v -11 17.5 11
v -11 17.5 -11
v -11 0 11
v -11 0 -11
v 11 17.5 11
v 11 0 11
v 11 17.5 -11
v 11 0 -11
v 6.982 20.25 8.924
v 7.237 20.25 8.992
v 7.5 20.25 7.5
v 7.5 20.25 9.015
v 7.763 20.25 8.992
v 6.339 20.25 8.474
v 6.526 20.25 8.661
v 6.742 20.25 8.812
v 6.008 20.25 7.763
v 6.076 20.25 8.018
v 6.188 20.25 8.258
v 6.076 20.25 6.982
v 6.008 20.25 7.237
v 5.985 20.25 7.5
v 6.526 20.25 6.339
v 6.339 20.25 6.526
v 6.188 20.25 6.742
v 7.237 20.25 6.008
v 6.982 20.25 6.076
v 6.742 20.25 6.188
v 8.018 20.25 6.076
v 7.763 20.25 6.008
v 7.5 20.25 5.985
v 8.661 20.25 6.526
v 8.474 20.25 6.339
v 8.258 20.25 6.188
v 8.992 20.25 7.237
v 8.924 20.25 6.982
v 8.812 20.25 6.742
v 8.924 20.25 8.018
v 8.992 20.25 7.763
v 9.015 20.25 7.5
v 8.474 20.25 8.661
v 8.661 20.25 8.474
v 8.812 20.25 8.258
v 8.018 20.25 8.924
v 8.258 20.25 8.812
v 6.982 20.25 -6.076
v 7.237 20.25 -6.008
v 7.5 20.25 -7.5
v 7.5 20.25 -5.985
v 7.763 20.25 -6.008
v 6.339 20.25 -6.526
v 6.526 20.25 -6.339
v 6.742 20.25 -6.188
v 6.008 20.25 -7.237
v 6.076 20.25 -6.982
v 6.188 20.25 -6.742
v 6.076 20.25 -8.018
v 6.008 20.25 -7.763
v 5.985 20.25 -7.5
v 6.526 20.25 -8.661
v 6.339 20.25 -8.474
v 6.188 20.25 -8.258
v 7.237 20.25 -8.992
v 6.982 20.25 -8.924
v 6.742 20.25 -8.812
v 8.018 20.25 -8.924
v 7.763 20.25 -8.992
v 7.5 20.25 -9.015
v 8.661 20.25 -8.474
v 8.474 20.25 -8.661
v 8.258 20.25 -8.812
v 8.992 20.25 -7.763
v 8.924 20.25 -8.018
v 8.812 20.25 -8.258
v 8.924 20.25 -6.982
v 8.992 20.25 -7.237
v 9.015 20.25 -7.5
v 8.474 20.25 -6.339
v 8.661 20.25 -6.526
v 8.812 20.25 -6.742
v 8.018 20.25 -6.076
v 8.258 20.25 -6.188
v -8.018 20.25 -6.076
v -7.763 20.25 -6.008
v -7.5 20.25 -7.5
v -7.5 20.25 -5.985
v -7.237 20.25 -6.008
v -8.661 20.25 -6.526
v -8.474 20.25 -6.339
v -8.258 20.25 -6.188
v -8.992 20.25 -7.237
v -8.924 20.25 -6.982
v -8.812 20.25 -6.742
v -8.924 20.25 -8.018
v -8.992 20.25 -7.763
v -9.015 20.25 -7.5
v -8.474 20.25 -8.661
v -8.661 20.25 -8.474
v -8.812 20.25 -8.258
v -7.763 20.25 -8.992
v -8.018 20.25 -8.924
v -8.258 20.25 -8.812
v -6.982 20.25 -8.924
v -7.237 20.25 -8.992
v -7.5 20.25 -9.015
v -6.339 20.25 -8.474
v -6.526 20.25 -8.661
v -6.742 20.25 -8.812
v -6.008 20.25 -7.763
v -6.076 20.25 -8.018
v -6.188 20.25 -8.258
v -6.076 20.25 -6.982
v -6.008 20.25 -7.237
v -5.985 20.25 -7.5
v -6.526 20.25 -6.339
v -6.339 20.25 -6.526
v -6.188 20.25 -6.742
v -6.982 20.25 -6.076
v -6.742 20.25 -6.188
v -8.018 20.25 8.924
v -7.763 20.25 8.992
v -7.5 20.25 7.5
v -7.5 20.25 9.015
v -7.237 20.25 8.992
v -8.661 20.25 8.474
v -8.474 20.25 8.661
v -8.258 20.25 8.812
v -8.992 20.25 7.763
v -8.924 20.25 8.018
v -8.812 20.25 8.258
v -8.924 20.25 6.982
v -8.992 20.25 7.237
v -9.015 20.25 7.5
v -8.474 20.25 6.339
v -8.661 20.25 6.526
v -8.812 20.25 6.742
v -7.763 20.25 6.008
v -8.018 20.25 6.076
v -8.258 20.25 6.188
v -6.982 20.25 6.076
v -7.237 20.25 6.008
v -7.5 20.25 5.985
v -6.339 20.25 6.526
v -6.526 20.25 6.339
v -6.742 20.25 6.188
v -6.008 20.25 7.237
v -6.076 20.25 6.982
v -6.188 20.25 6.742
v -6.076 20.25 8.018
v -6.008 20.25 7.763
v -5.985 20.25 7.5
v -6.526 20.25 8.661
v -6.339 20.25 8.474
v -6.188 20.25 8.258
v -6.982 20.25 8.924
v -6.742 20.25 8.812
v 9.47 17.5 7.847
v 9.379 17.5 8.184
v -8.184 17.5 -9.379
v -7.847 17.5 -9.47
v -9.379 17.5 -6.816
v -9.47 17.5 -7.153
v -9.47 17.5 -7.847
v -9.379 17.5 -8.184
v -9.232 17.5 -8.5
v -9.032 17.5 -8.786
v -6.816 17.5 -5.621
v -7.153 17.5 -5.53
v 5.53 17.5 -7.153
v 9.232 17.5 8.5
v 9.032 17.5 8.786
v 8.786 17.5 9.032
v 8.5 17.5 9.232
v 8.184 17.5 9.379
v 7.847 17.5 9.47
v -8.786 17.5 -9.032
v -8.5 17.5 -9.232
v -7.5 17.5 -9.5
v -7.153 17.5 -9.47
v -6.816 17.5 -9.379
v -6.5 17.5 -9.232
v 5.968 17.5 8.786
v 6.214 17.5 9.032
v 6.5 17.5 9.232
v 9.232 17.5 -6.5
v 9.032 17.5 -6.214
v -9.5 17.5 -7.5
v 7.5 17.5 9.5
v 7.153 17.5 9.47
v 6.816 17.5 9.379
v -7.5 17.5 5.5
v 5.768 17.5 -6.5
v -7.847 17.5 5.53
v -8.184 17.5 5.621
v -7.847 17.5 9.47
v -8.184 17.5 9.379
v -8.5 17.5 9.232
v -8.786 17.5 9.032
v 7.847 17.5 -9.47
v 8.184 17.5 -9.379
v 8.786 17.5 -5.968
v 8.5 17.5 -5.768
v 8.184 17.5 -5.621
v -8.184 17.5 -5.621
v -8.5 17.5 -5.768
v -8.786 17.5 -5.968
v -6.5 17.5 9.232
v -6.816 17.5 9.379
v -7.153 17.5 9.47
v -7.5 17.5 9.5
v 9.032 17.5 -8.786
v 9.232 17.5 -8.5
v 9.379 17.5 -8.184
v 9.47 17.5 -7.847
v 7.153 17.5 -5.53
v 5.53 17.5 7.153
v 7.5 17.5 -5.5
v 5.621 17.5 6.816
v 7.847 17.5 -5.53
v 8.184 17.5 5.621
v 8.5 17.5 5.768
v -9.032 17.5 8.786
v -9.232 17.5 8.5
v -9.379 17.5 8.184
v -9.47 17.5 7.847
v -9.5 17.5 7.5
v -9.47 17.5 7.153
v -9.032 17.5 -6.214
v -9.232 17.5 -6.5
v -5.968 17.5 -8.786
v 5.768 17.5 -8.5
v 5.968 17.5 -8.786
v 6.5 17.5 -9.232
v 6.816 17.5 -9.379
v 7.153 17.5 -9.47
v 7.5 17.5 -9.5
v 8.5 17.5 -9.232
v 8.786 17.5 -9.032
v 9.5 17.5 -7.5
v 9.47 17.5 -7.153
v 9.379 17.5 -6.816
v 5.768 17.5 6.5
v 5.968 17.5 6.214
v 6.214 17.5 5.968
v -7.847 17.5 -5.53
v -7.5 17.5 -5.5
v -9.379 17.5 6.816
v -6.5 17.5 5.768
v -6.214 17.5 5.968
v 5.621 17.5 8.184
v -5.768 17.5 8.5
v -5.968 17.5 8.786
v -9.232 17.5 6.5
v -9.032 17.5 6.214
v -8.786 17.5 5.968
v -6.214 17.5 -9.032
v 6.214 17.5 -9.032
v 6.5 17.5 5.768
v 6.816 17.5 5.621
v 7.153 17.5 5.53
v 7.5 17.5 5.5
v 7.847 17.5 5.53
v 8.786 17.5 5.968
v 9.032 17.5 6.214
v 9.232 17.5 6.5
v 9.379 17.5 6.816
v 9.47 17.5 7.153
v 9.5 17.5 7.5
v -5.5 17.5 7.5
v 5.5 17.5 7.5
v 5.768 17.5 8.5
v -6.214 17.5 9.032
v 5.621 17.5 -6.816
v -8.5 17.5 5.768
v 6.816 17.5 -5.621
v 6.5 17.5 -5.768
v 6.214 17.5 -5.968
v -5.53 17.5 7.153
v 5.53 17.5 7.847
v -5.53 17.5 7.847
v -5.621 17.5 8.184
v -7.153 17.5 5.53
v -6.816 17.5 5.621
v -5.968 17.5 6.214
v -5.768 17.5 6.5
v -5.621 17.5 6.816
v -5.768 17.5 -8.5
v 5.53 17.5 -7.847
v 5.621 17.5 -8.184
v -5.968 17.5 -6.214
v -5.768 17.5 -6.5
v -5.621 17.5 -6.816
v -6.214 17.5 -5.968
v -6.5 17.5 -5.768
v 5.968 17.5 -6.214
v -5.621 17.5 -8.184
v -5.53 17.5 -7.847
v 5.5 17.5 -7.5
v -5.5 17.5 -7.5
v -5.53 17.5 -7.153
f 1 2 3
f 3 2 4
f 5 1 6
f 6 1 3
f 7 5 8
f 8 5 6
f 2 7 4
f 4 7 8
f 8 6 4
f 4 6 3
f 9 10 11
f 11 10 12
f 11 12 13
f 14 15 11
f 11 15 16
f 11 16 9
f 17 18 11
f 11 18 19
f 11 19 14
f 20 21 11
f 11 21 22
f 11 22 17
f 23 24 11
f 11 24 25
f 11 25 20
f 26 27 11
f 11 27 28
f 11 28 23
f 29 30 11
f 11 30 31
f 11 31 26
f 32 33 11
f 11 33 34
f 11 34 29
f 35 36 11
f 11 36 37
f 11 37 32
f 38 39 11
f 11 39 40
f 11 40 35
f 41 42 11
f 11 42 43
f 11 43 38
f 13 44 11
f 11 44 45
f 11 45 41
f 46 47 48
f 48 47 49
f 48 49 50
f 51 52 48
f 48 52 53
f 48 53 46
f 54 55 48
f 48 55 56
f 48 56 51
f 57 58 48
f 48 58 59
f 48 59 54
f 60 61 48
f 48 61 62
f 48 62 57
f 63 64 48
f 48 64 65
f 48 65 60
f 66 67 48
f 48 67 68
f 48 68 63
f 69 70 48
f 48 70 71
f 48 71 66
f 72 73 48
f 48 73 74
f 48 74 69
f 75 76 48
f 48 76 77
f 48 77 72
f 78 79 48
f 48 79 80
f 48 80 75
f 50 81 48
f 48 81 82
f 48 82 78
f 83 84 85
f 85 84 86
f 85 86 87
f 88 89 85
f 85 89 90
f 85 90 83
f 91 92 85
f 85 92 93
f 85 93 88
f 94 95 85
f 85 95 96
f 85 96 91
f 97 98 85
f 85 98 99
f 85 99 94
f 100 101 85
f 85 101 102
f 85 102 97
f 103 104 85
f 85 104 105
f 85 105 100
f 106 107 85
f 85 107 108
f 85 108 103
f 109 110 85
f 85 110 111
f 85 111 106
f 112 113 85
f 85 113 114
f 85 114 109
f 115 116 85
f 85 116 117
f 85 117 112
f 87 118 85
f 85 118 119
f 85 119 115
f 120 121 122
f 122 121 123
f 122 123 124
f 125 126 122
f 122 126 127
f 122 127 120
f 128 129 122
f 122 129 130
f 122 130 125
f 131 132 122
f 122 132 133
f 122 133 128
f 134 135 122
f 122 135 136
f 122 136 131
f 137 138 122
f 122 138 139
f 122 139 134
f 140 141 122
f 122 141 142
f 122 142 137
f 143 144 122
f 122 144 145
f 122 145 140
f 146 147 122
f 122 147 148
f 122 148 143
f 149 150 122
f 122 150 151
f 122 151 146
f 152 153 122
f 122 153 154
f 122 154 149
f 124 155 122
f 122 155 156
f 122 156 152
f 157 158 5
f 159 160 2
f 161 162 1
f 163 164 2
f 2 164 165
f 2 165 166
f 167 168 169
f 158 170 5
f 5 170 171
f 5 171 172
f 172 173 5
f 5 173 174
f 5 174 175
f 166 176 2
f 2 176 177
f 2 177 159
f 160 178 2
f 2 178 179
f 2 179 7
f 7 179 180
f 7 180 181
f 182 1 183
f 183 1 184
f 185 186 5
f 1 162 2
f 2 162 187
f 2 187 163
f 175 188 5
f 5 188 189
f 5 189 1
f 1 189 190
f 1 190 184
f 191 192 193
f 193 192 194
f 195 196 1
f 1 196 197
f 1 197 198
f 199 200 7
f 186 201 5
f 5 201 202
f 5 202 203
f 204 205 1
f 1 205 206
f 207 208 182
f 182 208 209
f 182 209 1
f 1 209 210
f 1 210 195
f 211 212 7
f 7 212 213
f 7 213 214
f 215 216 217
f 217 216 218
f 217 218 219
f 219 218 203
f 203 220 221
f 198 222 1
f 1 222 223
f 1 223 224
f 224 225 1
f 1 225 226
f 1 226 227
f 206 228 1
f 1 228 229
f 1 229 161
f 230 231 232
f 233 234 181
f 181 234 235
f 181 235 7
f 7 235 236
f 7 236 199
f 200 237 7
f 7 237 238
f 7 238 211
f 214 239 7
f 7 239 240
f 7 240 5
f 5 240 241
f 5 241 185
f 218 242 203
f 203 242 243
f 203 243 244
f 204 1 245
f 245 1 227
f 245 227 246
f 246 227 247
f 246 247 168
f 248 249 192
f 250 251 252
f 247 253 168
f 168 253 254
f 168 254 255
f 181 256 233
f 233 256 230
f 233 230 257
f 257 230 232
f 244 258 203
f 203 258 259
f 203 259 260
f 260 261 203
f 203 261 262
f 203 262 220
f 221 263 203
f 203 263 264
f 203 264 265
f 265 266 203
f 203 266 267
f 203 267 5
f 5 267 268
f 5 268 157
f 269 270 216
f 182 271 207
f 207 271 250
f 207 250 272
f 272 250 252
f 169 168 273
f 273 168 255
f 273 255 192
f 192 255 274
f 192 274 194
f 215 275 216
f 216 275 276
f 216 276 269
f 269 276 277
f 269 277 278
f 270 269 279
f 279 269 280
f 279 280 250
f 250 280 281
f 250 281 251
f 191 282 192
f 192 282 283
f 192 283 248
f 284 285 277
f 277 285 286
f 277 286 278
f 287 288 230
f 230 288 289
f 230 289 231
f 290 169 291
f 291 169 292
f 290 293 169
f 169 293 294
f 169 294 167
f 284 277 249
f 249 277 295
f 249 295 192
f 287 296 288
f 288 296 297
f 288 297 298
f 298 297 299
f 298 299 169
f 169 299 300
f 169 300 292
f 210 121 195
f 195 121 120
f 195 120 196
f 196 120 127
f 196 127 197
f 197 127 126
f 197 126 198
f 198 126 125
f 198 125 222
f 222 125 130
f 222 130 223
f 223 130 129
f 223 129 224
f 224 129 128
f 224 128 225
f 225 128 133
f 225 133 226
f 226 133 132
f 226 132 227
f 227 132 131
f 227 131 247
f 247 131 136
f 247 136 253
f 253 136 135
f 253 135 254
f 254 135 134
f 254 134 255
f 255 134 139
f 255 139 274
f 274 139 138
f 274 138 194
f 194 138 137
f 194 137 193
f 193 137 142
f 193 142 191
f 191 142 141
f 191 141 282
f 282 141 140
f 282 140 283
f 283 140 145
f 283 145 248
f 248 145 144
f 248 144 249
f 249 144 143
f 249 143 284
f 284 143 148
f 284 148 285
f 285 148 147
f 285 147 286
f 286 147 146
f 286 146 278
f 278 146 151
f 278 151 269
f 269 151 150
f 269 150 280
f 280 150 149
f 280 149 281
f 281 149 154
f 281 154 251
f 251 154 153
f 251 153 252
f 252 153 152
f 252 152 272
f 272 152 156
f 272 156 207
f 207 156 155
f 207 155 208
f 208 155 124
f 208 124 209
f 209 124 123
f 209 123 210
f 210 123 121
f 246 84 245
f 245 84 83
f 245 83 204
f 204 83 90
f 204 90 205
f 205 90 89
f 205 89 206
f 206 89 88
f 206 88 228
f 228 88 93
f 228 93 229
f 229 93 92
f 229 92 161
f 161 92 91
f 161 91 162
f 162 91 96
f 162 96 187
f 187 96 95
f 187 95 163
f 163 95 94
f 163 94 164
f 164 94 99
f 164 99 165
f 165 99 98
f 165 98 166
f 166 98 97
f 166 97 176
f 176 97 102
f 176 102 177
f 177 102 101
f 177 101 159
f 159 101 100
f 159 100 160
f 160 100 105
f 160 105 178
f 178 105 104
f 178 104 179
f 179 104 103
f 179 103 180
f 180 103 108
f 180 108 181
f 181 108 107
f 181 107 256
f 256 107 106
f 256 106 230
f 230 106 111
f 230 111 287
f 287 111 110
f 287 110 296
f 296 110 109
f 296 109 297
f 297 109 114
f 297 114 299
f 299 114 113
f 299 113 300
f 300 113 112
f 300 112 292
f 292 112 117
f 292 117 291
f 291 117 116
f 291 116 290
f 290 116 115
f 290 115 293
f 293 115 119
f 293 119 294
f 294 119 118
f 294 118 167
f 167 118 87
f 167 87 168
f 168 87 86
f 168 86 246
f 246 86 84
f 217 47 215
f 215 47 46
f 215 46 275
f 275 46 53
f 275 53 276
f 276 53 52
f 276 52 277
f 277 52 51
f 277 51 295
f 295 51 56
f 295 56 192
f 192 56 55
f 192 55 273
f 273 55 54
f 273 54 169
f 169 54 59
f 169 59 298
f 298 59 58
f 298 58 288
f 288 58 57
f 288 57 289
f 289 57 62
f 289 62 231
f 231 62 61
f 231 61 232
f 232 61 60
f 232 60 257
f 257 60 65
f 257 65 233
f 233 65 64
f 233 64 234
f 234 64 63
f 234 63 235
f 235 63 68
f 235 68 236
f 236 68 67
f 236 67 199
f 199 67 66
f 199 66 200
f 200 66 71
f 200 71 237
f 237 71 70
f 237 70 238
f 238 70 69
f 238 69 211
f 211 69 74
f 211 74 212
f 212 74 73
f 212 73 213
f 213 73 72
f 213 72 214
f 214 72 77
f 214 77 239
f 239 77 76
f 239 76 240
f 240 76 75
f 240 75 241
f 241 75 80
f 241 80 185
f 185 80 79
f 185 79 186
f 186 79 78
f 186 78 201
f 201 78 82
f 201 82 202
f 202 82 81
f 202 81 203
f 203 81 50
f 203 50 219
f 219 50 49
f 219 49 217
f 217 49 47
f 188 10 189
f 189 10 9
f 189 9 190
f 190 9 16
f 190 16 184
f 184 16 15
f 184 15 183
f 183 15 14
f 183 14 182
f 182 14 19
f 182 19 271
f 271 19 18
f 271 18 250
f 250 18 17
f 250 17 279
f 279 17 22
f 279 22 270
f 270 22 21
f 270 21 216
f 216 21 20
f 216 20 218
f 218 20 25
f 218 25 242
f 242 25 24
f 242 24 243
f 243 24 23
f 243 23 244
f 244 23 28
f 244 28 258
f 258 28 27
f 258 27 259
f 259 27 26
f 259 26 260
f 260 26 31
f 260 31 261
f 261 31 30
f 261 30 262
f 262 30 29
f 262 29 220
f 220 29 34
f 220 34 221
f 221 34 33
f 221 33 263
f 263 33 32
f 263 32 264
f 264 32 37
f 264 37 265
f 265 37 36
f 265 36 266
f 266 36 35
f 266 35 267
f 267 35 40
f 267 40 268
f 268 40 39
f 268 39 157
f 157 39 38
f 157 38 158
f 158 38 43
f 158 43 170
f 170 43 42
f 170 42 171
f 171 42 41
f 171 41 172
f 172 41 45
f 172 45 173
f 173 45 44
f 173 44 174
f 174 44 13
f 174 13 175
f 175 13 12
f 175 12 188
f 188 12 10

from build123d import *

# Parameters (mm, degrees)
SKETCH1_W           = 22
SKETCH1_H           = 22
BOSS_EXTRUDE1_DEPTH = 3
SKETCH2_R           = 2
BOSS_EXTRUDE2_DEPTH = 14.5
SKETCH3_R           = 2
BOSS_EXTRUDE3_DEPTH = 2.75
BOSS_EXTRUDE3_TAPER = 10
BOSS_EXTRUDE4_DEPTH = 14.5
BOSS_EXTRUDE5_DEPTH = 14.5
SKETCH6_W           = 22
SKETCH6_H           = 22
BOSS_EXTRUDE6_DEPTH = 14.5


with BuildPart() as part:
    # Sketch1 → Boss-Extrude1 (new body)
    with BuildSketch(Plane(origin=(0, 0, 0), x_dir=(1, 0, 0), z_dir=(0, 1, 0))):
        Rectangle(SKETCH1_W, SKETCH1_H)
    extrude(amount=BOSS_EXTRUDE1_DEPTH)

    # Sketch2 → Boss-Extrude2 (add)
    with BuildSketch(Plane(origin=(0, 3, 0), x_dir=(1, 0, 0), z_dir=(0, 1, 0))):
        with Locations((-7.5, 7.5)):
            Circle(SKETCH2_R)
        with Locations((7.5, 7.5)):
            Circle(SKETCH2_R)
        with Locations((7.5, -7.5)):
            Circle(SKETCH2_R)
        with Locations((-7.5, -7.5)):
            Circle(SKETCH2_R)
    extrude(amount=BOSS_EXTRUDE2_DEPTH)

    # Sketch3 → Boss-Extrude3 (add)
    with BuildSketch(Plane(origin=(0, 17.5, 0), x_dir=(1, 0, 0), z_dir=(0, 1, 0))):
        with Locations((7.5, -7.5)):
            Circle(SKETCH3_R)
        with Locations((7.5, 7.5)):
            Circle(SKETCH3_R)
        with Locations((-7.5, 7.5)):
            Circle(SKETCH3_R)
        with Locations((-7.5, -7.5)):
            Circle(SKETCH3_R)
    extrude(amount=BOSS_EXTRUDE3_DEPTH, taper=BOSS_EXTRUDE3_TAPER)

    # Sketch4 → Boss-Extrude4 (add)
    with BuildSketch(Plane(origin=(0, 3, 0), x_dir=(1, 0, 0), z_dir=(0, 1, 0))):
        Polygon((-7.217157288, -7.782842712), (7.782842712, 7.217157288), (7.217157288, 7.782842712), (-7.782842712, -7.217157288), align=None)
    extrude(amount=BOSS_EXTRUDE4_DEPTH)

    # Sketch5 → Boss-Extrude5 (add)
    with BuildSketch(Plane(origin=(0, 3, 0), x_dir=(1, 0, 0), z_dir=(0, 1, 0))):
        Polygon((-7.217157288, 7.782842712), (7.782842712, -7.217157288), (7.217157288, -7.782842712), (-7.782842712, 7.217157288), align=None)
    extrude(amount=BOSS_EXTRUDE5_DEPTH)

    # Sketch6 → Boss-Extrude6 (add)
    with BuildSketch(Plane(origin=(0, 3, 0), x_dir=(1, 0, 0), z_dir=(0, 1, 0))):
        Rectangle(SKETCH6_W, SKETCH6_H)
    extrude(amount=BOSS_EXTRUDE6_DEPTH)


solid = part.part
